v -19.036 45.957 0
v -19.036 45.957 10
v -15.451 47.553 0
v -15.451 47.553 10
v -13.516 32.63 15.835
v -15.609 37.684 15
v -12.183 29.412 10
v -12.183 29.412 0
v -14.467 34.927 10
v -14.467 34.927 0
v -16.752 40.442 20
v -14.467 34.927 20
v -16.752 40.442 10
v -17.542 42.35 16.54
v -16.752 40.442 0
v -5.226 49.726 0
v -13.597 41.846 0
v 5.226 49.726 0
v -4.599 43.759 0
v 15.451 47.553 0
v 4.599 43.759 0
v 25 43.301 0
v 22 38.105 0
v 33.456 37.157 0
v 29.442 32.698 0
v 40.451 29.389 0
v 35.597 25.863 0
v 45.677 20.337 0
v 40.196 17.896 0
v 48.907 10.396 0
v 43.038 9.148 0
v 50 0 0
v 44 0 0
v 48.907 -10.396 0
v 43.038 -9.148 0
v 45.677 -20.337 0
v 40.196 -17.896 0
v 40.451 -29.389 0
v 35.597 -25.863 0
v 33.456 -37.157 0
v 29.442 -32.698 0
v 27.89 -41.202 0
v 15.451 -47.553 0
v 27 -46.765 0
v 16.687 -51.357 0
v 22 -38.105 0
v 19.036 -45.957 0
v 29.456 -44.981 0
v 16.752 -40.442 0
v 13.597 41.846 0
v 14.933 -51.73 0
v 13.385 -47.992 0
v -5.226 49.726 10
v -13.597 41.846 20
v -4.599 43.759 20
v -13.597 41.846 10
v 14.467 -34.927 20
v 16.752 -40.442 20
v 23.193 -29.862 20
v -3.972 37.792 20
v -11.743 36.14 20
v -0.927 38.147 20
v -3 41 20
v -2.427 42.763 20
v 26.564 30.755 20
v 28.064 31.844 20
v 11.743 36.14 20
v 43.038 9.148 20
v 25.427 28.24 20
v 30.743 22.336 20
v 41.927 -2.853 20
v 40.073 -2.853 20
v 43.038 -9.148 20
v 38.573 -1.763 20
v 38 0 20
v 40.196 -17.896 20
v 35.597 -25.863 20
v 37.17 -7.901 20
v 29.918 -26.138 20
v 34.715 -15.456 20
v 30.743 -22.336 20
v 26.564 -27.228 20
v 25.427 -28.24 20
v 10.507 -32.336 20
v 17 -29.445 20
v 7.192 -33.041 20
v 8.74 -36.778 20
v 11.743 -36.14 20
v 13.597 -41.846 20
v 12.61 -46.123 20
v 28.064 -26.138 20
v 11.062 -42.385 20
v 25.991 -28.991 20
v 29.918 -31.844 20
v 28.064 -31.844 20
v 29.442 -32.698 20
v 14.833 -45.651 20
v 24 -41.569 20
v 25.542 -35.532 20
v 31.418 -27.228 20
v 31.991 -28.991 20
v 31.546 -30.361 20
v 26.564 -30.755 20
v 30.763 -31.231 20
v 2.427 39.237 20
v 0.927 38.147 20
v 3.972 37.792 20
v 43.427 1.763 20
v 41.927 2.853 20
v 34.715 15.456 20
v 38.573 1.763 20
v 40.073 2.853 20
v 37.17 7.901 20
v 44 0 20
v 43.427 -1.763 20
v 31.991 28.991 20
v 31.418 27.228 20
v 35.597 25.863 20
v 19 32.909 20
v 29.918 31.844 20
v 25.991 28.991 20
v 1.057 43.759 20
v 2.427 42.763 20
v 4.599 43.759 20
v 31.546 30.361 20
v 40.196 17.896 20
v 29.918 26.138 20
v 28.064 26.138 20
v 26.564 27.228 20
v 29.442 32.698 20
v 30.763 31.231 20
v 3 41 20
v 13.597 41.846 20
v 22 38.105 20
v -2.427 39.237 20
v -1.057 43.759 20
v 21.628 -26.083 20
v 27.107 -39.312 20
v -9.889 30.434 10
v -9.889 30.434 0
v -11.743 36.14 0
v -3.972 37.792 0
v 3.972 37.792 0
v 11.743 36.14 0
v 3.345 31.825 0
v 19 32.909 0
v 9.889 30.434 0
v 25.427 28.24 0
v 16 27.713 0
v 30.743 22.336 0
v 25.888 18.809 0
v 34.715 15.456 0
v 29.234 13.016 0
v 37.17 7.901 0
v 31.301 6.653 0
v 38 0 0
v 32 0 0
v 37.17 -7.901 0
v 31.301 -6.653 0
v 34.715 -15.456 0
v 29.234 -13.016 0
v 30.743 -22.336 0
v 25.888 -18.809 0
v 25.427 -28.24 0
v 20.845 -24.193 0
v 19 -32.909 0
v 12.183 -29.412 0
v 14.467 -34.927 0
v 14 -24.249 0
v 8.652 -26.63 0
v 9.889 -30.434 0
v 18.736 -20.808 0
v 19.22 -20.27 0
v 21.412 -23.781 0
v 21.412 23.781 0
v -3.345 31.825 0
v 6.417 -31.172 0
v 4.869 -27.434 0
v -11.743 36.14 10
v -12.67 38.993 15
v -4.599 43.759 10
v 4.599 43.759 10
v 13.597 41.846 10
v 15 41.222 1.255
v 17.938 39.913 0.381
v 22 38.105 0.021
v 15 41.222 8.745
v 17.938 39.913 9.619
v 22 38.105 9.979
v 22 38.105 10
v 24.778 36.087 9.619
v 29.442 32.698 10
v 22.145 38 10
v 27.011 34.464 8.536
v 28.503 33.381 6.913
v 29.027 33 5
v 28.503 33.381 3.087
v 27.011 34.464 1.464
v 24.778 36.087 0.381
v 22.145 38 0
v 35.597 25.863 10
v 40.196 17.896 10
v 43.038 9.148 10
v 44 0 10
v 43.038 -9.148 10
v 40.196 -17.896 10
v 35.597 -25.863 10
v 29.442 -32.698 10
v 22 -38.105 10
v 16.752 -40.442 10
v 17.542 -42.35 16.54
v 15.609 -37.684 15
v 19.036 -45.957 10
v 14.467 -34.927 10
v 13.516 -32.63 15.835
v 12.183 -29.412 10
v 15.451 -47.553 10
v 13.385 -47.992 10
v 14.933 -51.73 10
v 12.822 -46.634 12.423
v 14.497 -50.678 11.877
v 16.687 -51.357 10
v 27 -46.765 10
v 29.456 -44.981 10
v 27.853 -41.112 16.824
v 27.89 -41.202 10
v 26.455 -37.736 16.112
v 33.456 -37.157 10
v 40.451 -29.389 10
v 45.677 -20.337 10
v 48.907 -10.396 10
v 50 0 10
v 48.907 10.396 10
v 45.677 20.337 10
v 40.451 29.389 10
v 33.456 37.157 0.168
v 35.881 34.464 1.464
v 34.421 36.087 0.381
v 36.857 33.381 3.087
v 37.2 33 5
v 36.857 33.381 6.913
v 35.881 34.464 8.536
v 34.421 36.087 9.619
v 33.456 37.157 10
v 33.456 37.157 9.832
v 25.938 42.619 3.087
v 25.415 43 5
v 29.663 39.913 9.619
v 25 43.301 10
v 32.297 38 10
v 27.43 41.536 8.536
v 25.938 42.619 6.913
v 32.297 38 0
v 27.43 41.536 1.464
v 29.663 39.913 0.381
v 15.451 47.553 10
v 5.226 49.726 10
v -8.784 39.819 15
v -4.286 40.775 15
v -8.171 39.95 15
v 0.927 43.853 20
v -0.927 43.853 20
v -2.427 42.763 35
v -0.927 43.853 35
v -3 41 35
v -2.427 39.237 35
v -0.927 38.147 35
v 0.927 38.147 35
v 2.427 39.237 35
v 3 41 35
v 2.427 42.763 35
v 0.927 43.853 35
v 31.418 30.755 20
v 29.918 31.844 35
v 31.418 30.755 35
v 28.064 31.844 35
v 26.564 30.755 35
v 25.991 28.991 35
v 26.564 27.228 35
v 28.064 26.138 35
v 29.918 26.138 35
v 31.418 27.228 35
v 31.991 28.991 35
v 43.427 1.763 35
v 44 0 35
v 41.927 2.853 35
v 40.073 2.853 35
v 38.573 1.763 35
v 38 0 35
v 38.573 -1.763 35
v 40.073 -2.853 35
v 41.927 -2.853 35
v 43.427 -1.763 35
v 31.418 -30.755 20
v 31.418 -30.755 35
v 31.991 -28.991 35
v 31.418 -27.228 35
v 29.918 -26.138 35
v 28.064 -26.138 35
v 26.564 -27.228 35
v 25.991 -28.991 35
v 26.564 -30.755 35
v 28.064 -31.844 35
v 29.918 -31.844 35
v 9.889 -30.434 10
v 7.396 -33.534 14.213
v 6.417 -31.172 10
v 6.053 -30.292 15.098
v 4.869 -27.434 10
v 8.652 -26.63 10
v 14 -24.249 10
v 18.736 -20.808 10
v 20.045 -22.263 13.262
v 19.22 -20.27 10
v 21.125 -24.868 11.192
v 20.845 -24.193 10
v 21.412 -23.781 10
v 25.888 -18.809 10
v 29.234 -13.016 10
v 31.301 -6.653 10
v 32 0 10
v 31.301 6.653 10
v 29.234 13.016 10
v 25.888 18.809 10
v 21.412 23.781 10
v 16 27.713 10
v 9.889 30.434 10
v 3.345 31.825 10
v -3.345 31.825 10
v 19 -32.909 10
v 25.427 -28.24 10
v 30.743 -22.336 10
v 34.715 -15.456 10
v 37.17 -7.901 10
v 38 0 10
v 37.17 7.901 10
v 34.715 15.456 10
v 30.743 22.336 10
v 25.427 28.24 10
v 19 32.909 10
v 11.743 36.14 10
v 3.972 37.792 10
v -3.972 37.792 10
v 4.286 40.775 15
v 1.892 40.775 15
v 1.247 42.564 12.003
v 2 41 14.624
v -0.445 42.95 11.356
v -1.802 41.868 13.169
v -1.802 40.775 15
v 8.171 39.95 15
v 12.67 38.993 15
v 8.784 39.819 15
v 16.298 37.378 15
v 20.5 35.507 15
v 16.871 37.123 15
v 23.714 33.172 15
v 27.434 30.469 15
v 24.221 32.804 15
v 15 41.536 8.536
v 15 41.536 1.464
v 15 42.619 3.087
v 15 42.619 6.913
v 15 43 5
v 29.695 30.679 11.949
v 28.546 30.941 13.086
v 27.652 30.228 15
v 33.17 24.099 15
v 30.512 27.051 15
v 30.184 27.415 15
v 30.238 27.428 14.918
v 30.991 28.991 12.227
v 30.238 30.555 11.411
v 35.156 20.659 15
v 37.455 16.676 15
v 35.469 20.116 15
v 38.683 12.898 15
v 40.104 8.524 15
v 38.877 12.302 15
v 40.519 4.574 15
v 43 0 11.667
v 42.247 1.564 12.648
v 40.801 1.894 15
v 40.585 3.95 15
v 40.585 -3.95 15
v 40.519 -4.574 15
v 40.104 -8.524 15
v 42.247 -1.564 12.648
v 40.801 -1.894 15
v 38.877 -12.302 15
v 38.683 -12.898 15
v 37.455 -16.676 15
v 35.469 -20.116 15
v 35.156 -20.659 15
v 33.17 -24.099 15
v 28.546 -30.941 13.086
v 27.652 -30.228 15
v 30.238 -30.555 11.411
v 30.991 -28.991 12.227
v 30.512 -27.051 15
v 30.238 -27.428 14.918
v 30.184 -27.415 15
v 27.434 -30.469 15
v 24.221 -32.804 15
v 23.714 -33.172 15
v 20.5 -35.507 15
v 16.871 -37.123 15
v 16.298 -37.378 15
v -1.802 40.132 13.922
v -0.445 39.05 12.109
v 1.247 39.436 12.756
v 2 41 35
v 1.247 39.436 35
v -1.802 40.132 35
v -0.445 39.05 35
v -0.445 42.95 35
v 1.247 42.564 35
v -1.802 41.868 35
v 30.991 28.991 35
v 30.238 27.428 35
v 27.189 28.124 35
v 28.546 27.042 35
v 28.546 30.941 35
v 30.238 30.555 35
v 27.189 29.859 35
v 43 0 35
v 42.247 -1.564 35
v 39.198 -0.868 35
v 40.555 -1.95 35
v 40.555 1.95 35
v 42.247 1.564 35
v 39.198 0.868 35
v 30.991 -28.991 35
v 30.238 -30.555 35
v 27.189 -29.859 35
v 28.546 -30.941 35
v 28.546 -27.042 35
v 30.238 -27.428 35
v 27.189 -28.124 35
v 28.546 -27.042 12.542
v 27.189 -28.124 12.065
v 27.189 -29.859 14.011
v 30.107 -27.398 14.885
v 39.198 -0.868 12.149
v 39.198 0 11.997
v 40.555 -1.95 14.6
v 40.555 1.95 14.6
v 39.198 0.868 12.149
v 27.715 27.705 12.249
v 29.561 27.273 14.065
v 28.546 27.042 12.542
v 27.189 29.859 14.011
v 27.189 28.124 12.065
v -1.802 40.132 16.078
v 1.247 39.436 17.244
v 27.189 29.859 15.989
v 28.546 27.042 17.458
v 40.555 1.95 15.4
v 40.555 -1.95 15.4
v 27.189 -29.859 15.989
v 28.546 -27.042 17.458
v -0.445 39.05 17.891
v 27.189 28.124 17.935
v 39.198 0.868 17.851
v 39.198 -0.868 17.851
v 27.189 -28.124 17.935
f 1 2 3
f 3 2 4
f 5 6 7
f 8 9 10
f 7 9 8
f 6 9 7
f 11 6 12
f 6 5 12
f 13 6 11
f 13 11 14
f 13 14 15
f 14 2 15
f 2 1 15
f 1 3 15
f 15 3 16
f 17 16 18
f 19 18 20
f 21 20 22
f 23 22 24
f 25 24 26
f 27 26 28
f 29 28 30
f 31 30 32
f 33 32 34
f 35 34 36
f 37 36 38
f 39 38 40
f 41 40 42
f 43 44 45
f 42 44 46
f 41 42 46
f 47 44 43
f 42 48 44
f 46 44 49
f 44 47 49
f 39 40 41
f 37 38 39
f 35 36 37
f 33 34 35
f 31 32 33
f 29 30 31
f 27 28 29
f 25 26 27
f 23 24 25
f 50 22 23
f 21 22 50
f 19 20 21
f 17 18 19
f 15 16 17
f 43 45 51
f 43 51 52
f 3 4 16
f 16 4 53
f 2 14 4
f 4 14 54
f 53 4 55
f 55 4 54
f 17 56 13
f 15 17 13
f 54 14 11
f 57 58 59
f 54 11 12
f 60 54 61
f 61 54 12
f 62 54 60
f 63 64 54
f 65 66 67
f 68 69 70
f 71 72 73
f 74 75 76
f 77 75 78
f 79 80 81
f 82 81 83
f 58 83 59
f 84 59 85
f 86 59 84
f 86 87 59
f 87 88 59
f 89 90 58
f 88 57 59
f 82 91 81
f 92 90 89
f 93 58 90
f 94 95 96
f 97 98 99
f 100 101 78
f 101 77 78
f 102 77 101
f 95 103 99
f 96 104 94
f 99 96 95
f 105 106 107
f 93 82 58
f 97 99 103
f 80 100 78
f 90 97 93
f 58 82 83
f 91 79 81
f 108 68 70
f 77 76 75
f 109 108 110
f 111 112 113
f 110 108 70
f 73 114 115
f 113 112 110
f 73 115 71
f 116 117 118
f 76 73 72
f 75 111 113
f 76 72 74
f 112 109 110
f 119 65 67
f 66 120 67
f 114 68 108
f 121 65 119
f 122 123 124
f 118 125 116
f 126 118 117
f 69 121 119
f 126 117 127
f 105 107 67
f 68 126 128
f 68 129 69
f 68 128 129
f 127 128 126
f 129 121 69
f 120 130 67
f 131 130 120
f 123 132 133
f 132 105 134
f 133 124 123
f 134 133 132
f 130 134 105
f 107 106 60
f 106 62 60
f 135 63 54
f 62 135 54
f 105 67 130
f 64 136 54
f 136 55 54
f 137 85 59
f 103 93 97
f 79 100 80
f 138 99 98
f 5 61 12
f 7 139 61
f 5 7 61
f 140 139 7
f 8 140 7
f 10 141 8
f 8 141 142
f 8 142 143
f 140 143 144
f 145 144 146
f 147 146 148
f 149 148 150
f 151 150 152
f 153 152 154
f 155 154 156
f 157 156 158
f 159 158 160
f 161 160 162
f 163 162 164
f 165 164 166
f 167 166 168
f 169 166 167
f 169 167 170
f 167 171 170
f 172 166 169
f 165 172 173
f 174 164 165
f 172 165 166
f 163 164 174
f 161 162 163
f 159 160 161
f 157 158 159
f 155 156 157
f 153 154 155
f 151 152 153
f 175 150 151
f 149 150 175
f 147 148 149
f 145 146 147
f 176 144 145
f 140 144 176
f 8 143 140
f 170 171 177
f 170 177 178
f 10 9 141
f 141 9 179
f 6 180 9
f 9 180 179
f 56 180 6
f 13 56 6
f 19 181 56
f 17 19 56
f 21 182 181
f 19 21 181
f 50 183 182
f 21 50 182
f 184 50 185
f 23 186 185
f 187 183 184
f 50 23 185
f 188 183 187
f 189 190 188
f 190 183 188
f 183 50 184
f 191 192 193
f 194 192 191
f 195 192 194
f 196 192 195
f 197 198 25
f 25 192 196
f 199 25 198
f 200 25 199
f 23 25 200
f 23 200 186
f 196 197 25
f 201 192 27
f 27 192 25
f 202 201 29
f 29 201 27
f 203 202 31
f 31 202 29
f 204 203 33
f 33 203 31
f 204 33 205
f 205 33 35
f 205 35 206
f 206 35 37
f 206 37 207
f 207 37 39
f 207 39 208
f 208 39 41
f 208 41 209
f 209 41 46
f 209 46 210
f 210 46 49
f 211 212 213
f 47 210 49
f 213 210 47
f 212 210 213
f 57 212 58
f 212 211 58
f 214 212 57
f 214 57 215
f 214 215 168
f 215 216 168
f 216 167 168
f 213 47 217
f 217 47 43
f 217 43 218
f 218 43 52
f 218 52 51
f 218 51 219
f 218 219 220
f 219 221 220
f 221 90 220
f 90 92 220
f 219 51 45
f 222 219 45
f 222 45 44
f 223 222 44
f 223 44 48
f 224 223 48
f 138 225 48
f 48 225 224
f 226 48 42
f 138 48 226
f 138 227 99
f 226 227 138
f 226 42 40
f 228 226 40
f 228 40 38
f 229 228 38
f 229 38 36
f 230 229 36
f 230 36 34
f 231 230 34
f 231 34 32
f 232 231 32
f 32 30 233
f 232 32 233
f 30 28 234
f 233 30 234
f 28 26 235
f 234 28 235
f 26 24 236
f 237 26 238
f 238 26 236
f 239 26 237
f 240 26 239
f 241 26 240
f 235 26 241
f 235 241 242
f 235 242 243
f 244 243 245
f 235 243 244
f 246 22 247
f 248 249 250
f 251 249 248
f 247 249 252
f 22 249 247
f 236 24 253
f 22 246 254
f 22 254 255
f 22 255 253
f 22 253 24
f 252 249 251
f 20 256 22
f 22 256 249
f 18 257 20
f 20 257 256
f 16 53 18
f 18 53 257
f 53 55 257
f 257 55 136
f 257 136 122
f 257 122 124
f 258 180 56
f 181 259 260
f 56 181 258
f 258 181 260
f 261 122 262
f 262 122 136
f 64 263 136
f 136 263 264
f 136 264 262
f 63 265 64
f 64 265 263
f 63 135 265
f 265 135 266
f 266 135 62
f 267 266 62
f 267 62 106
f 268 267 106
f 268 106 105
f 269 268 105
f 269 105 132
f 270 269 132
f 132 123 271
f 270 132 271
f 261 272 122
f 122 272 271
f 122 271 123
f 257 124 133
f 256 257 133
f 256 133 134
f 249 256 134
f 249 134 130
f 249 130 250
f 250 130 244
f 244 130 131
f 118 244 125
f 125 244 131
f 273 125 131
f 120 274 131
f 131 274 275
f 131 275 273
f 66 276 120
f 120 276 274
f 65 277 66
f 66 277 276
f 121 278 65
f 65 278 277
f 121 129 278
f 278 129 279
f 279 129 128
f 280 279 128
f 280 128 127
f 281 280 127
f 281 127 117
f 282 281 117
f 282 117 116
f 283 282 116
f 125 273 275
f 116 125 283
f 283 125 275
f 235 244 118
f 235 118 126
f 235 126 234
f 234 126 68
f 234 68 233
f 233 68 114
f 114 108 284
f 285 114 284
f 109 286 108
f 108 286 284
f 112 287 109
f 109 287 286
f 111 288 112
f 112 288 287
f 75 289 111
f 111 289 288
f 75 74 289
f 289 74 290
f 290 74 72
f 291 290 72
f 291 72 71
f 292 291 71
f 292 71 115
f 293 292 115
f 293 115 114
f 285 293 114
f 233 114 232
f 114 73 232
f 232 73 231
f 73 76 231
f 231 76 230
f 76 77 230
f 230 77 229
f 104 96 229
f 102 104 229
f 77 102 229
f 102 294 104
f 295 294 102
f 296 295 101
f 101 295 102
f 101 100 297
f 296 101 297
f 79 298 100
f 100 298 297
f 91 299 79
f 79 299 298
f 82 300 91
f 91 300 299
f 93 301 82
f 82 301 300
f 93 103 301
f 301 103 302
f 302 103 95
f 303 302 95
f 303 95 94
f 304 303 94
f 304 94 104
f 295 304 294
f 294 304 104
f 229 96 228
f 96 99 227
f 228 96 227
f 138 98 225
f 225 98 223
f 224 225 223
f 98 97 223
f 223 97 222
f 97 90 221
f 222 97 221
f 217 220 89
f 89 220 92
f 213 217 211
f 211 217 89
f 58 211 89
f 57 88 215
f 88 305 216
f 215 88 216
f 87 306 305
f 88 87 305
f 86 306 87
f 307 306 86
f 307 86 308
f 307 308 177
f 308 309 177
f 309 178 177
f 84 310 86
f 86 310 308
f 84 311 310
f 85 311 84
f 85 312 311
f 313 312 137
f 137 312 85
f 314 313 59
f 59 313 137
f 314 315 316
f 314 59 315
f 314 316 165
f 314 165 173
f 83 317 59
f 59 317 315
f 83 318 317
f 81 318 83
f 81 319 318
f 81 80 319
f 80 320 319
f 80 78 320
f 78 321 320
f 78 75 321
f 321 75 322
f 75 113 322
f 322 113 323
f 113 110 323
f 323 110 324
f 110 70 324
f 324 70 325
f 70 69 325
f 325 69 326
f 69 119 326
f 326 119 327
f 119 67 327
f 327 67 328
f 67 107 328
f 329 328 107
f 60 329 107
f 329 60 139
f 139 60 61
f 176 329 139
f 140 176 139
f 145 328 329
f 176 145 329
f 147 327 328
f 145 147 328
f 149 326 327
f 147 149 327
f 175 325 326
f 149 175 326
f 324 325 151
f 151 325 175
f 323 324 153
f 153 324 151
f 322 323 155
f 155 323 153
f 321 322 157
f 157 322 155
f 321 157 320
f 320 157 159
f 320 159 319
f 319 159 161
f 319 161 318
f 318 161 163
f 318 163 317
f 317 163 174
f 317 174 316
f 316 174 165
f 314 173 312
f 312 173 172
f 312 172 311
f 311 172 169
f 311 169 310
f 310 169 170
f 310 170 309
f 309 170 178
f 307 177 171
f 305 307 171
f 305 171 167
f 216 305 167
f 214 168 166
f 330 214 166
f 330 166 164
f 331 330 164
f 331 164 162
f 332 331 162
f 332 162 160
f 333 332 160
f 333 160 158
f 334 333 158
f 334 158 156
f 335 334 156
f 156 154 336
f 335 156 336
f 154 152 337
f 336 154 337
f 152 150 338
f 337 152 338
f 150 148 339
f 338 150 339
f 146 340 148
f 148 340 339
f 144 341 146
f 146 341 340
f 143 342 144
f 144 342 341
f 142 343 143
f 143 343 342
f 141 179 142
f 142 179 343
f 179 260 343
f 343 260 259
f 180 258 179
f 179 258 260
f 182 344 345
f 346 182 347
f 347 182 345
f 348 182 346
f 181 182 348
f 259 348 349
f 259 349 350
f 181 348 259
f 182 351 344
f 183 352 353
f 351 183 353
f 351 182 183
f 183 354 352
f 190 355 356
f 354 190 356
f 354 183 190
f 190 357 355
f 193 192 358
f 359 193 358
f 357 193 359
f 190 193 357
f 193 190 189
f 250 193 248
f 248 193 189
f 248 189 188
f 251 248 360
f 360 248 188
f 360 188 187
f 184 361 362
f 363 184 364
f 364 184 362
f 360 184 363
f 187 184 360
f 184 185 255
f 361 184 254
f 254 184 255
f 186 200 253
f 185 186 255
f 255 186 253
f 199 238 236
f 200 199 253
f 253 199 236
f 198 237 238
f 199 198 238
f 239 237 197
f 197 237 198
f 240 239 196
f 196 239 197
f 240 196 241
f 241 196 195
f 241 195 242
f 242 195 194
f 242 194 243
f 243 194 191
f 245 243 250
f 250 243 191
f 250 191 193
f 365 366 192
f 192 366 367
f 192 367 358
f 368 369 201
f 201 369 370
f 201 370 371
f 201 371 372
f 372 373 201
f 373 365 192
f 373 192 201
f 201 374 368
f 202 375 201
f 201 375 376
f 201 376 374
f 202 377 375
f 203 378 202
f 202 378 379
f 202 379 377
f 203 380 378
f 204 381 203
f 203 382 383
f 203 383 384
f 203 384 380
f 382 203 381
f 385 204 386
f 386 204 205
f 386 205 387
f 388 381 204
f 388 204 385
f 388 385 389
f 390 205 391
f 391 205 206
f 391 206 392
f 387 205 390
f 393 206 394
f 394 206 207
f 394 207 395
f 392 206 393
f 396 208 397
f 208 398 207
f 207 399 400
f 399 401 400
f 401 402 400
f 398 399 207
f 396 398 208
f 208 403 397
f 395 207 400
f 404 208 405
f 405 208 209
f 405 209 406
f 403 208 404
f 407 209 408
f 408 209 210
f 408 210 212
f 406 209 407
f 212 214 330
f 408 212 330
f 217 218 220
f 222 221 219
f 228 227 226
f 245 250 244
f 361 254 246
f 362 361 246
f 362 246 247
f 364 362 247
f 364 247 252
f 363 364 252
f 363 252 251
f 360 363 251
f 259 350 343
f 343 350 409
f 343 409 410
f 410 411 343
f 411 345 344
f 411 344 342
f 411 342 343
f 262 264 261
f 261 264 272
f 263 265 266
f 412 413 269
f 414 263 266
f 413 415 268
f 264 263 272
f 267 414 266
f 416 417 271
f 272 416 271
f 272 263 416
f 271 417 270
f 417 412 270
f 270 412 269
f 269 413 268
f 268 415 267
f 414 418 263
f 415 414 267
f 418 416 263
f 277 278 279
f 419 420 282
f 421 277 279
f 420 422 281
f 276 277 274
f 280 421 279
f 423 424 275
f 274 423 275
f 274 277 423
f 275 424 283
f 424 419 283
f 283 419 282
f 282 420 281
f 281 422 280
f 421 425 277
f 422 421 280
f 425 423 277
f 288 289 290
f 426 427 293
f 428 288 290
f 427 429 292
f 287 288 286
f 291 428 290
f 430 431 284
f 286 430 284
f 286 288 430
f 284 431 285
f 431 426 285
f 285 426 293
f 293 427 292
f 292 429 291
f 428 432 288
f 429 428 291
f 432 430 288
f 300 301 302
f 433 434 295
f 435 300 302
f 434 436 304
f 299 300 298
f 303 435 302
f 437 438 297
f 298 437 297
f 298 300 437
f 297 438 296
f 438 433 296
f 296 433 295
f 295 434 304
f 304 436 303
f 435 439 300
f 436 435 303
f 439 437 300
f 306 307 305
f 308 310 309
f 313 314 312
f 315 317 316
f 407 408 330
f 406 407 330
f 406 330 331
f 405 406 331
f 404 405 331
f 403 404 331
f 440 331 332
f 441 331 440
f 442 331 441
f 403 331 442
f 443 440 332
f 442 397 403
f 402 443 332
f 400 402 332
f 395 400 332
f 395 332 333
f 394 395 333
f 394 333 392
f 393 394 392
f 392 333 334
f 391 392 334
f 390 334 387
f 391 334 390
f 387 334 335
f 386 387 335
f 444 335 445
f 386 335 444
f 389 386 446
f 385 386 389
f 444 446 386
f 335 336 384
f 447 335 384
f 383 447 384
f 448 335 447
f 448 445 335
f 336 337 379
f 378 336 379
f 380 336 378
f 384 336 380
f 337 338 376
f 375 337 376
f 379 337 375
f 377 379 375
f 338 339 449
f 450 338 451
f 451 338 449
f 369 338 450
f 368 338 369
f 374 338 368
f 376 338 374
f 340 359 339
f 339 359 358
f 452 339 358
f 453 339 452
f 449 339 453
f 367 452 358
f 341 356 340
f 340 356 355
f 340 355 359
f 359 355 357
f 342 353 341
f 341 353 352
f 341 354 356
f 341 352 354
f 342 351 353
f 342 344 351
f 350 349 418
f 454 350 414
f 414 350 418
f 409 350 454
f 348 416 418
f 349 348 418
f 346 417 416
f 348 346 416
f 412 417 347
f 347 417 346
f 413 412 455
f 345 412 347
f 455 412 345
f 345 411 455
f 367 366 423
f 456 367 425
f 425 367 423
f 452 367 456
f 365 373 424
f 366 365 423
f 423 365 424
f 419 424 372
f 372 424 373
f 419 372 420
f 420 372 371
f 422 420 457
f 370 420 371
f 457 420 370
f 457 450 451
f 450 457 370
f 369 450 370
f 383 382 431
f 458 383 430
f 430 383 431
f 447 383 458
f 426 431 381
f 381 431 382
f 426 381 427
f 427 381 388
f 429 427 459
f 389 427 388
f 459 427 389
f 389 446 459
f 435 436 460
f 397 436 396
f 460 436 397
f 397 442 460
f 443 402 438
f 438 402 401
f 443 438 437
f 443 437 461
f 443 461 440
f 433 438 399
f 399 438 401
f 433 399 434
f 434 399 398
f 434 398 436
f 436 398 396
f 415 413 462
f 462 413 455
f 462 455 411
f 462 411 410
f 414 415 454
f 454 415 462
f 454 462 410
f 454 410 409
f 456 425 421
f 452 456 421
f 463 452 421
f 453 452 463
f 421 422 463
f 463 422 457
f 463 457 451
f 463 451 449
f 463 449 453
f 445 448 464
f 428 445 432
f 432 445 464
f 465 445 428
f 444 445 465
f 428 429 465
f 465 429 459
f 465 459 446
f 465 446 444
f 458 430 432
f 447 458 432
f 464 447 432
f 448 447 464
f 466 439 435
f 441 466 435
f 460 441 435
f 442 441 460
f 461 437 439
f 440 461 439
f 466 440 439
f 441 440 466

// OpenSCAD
pinoepel = 8;
radius = 50;
thickness = 6;
pipe = 6;
pipe_height=10;
connector_thickness = 4;
connector_length = 10;
holes = radius - (1.5 * thickness);


// outter pipe
difference() {
	cylinder(pipe_height, r=radius);
	cylinder(pipe_height, r=radius-thickness);
	rotate(22.5) {translate([-radius, -radius,0])cube([radius,2*radius,50]);}
translate([radius/2 - pipe_height,radius-12,pipe_height/2]) {rotate([0,90,0]) {cylinder(25, r=pipe_height/2);}}
}

// inner pipe
difference() {
	cylinder(pipe_height, r=radius - (thickness + pipe));
	cylinder(pipe_height, r=radius - (2 * thickness + pipe));
	rotate(22.5) {translate([-radius, -radius,0])cube([radius,2*radius,50]);}
}

translate([0,0,pipe_height]) {
difference() {
	cylinder(10, r1=radius, r2=radius-thickness);
	cylinder(10, r1=radius-thickness, r2=radius-(2 * thickness));
	for (z = [0:pinoepel/2]) {
		translate([sin(z * 360/pinoepel)*holes, cos(z * 360/pinoepel)*holes, 0]) {
				cylinder(10, r=2);
		}
	}
	rotate(22.5) {translate([-radius, -radius,0])cube([radius,2*radius,50]);}
}

translate([0,0,8]) {
	difference() {
		cylinder(2, r=radius-thickness);
		cylinder(2, r=radius-(2*thickness));
		for (z = [0:pinoepel/2]) {
			translate([sin(z * 360/pinoepel)*holes, cos(z * 360/pinoepel)*holes, 0]){
				cylinder(2, r=2);
			}
		}
		rotate(22.5) {translate([-radius, -radius,0])cube([radius,2*radius,50]);}
	}
}

for (z = [0:pinoepel/2-1]) {
	translate([sin(z * 360/pinoepel)*holes, cos(z * 360/pinoepel)*holes, 10]) {
		difference() {
			cylinder(15, r=3);
			cylinder(15, r=2);
		}
	}
}

difference() {
	cylinder(10, r1=radius-(thickness + pipe), r2=radius-(1 * thickness));
	cylinder(10, r1=radius-(2 * thickness + pipe), r2=radius-(2 * thickness));
	for (z = [0:pinoepel/2]) {
		translate([sin(z * 360/pinoepel)*holes, cos(z * 360/pinoepel)*holes, 0]) {
				cylinder(10, r=2);
		}
	}
	rotate(22.5) {translate([-radius, -radius,0])cube([radius,2*radius,50]);}
}
}

// connector
// outter pipe
difference() {
	cylinder(pipe_height, r=radius + connector_thickness);
	cylinder(pipe_height, r=radius);
	rotate(22.5) {translate([-radius-connector_length, -radius-connector_thickness,0])cube([radius + connector_thickness,2*(radius+connector_thickness),50]);}
      rotate(22.5) {translate([connector_length, -radius-connector_thickness,0])cube([radius + connector_thickness,2*(radius + connector_thickness),50]);}
	rotate(22.5) {translate([-radius,0,0]) cube([2*(radius+connector_thickness), radius+connector_thickness,50]);}
}

// inner pipe
difference() {
	cylinder(pipe_height, r=radius - (2 * thickness + pipe));
	cylinder(pipe_height, r=radius - (2 * thickness + pipe) - connector_thickness);
	rotate(22.5) {translate([-radius-connector_length, -radius-connector_thickness,0])cube([radius + connector_thickness,2*(radius+connector_thickness),50]);}
      rotate(22.5) {translate([connector_length, -radius-connector_thickness,0])cube([radius + connector_thickness,2*(radius + connector_thickness),50]);}
	rotate(22.5) {translate([-radius,0,0]) cube([2*(radius+connector_thickness), radius+connector_thickness,50]);}
}

translate([0,0,pipe_height]) {
difference() {
	cylinder(10, r1=radius + connector_thickness, r2=radius-thickness + connector_thickness);
	cylinder(10, r1=radius, r2=radius-thickness);
	rotate(22.5) {translate([-radius-connector_length, -radius-connector_thickness,0])cube([radius + connector_thickness,2*(radius+connector_thickness),50]);}
      rotate(22.5) {translate([connector_length, -radius-connector_thickness,0])cube([radius + connector_thickness,2*(radius + connector_thickness),50]);}
	rotate(22.5) {translate([-radius,0,0]) cube([2*(radius+connector_thickness), radius+connector_thickness,50]);}
}
difference() {
	cylinder(10, r1=radius-(2 * thickness + pipe), r2=radius-(2 * thickness));
	cylinder(10, r1=radius-(2 * thickness + pipe) - connector_thickness, r2=radius-(2 * thickness) - connector_thickness);
	rotate(22.5) {translate([-radius-connector_length, -radius-connector_thickness,0])cube([radius + connector_thickness,2*(radius+connector_thickness),50]);}
      rotate(22.5) {translate([connector_length, -radius-connector_thickness,0])cube([radius + connector_thickness,2*(radius + connector_thickness),50]);}
	rotate(22.5) {translate([-radius,0,0]) cube([2*(radius+connector_thickness), radius+connector_thickness,50]);}
}
}
